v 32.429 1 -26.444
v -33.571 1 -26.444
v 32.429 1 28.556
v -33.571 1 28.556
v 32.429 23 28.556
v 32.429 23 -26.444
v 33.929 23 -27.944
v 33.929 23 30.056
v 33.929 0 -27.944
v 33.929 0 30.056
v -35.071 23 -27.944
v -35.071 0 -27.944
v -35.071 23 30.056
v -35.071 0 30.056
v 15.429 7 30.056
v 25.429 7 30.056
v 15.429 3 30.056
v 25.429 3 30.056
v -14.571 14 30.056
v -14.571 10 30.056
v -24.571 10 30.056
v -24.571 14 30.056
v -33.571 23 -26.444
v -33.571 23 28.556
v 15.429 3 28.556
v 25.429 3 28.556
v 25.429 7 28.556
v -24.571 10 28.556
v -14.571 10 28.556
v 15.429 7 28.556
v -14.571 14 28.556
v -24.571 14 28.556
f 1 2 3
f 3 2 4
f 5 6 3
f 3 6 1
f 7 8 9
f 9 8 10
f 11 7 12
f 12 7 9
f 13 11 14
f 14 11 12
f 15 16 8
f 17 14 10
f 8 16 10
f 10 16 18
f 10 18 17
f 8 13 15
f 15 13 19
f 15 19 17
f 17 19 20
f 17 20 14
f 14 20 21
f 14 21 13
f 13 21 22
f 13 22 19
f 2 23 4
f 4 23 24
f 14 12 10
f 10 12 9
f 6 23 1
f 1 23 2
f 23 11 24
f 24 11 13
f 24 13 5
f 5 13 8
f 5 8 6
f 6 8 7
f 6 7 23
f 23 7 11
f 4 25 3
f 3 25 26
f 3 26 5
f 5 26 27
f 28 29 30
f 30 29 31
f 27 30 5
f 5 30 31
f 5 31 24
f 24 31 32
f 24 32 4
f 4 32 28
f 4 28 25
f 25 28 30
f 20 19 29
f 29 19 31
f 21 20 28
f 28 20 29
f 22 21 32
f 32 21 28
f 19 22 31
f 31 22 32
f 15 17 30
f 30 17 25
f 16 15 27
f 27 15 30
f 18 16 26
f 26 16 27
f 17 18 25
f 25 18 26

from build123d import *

# Parameters (mm, degrees)
BOSS_EXTRUDE2_DEPTH = 1
BOSS_EXTRUDE3_DEPTH = 23
SKETCH1_4_W         = 66
SKETCH1_4_H         = 1.5
BOSS_EXTRUDE4_DEPTH = 23
SKETCH5_W           = 10
SKETCH5_H           = 4
CUT_EXTRUDE3_DEPTH  = 10


with BuildPart() as part:
    # Sketch1 → Boss-Extrude2 (new body)
    with BuildSketch(Plane(origin=(0, 0, 0), x_dir=(1, 0, 0), z_dir=(0, 1, 0))):
        Polygon((-33.571389819, -30.056333369), (-33.571389819, -28.556333369), (32.428610181, -28.556333369), (32.428610181, -30.056333369), (33.928610181, -30.056333369), (33.928610181, 27.943666631), (-35.071389819, 27.943666631), (-35.071389819, -30.056333369), align=None)
    extrude(amount=BOSS_EXTRUDE2_DEPTH)

    # Sketch1<3> → Boss-Extrude3 (add)
    with BuildSketch(Plane(origin=(0, 0, 0), x_dir=(1, 0, 0), z_dir=(0, 1, 0))):
        Polygon((-33.571389819, -30.056333369), (-33.571389819, -28.556333369), (-33.571389819, 26.443666631), (32.428610181, 26.443666631), (32.428610181, -28.556333369), (32.428610181, -30.056333369), (33.928610181, -30.056333369), (33.928610181, 27.943666631), (-35.071389819, 27.943666631), (-35.071389819, -30.056333369), align=None)
    extrude(amount=BOSS_EXTRUDE3_DEPTH)

    # Sketch1<4> → Boss-Extrude4 (add)
    with BuildSketch(Plane(origin=(0, 0, 0), x_dir=(1, 0, 0), z_dir=(0, 1, 0))):
        with Locations((-0.571389819, -29.306333369)):
            Rectangle(SKETCH1_4_W, SKETCH1_4_H)
    extrude(amount=BOSS_EXTRUDE4_DEPTH)

    # Sketch5 → Cut-Extrude3 (cut)
    with BuildSketch(Plane.XY.offset(30.056333369)):
        with Locations((20.428610181, 5)):
            Rectangle(SKETCH5_W, SKETCH5_H)
        with Locations((-19.571389819, 12)):
            Rectangle(SKETCH5_W, SKETCH5_H)
    extrude(amount=-CUT_EXTRUDE3_DEPTH, mode=Mode.SUBTRACT)


solid = part.part
